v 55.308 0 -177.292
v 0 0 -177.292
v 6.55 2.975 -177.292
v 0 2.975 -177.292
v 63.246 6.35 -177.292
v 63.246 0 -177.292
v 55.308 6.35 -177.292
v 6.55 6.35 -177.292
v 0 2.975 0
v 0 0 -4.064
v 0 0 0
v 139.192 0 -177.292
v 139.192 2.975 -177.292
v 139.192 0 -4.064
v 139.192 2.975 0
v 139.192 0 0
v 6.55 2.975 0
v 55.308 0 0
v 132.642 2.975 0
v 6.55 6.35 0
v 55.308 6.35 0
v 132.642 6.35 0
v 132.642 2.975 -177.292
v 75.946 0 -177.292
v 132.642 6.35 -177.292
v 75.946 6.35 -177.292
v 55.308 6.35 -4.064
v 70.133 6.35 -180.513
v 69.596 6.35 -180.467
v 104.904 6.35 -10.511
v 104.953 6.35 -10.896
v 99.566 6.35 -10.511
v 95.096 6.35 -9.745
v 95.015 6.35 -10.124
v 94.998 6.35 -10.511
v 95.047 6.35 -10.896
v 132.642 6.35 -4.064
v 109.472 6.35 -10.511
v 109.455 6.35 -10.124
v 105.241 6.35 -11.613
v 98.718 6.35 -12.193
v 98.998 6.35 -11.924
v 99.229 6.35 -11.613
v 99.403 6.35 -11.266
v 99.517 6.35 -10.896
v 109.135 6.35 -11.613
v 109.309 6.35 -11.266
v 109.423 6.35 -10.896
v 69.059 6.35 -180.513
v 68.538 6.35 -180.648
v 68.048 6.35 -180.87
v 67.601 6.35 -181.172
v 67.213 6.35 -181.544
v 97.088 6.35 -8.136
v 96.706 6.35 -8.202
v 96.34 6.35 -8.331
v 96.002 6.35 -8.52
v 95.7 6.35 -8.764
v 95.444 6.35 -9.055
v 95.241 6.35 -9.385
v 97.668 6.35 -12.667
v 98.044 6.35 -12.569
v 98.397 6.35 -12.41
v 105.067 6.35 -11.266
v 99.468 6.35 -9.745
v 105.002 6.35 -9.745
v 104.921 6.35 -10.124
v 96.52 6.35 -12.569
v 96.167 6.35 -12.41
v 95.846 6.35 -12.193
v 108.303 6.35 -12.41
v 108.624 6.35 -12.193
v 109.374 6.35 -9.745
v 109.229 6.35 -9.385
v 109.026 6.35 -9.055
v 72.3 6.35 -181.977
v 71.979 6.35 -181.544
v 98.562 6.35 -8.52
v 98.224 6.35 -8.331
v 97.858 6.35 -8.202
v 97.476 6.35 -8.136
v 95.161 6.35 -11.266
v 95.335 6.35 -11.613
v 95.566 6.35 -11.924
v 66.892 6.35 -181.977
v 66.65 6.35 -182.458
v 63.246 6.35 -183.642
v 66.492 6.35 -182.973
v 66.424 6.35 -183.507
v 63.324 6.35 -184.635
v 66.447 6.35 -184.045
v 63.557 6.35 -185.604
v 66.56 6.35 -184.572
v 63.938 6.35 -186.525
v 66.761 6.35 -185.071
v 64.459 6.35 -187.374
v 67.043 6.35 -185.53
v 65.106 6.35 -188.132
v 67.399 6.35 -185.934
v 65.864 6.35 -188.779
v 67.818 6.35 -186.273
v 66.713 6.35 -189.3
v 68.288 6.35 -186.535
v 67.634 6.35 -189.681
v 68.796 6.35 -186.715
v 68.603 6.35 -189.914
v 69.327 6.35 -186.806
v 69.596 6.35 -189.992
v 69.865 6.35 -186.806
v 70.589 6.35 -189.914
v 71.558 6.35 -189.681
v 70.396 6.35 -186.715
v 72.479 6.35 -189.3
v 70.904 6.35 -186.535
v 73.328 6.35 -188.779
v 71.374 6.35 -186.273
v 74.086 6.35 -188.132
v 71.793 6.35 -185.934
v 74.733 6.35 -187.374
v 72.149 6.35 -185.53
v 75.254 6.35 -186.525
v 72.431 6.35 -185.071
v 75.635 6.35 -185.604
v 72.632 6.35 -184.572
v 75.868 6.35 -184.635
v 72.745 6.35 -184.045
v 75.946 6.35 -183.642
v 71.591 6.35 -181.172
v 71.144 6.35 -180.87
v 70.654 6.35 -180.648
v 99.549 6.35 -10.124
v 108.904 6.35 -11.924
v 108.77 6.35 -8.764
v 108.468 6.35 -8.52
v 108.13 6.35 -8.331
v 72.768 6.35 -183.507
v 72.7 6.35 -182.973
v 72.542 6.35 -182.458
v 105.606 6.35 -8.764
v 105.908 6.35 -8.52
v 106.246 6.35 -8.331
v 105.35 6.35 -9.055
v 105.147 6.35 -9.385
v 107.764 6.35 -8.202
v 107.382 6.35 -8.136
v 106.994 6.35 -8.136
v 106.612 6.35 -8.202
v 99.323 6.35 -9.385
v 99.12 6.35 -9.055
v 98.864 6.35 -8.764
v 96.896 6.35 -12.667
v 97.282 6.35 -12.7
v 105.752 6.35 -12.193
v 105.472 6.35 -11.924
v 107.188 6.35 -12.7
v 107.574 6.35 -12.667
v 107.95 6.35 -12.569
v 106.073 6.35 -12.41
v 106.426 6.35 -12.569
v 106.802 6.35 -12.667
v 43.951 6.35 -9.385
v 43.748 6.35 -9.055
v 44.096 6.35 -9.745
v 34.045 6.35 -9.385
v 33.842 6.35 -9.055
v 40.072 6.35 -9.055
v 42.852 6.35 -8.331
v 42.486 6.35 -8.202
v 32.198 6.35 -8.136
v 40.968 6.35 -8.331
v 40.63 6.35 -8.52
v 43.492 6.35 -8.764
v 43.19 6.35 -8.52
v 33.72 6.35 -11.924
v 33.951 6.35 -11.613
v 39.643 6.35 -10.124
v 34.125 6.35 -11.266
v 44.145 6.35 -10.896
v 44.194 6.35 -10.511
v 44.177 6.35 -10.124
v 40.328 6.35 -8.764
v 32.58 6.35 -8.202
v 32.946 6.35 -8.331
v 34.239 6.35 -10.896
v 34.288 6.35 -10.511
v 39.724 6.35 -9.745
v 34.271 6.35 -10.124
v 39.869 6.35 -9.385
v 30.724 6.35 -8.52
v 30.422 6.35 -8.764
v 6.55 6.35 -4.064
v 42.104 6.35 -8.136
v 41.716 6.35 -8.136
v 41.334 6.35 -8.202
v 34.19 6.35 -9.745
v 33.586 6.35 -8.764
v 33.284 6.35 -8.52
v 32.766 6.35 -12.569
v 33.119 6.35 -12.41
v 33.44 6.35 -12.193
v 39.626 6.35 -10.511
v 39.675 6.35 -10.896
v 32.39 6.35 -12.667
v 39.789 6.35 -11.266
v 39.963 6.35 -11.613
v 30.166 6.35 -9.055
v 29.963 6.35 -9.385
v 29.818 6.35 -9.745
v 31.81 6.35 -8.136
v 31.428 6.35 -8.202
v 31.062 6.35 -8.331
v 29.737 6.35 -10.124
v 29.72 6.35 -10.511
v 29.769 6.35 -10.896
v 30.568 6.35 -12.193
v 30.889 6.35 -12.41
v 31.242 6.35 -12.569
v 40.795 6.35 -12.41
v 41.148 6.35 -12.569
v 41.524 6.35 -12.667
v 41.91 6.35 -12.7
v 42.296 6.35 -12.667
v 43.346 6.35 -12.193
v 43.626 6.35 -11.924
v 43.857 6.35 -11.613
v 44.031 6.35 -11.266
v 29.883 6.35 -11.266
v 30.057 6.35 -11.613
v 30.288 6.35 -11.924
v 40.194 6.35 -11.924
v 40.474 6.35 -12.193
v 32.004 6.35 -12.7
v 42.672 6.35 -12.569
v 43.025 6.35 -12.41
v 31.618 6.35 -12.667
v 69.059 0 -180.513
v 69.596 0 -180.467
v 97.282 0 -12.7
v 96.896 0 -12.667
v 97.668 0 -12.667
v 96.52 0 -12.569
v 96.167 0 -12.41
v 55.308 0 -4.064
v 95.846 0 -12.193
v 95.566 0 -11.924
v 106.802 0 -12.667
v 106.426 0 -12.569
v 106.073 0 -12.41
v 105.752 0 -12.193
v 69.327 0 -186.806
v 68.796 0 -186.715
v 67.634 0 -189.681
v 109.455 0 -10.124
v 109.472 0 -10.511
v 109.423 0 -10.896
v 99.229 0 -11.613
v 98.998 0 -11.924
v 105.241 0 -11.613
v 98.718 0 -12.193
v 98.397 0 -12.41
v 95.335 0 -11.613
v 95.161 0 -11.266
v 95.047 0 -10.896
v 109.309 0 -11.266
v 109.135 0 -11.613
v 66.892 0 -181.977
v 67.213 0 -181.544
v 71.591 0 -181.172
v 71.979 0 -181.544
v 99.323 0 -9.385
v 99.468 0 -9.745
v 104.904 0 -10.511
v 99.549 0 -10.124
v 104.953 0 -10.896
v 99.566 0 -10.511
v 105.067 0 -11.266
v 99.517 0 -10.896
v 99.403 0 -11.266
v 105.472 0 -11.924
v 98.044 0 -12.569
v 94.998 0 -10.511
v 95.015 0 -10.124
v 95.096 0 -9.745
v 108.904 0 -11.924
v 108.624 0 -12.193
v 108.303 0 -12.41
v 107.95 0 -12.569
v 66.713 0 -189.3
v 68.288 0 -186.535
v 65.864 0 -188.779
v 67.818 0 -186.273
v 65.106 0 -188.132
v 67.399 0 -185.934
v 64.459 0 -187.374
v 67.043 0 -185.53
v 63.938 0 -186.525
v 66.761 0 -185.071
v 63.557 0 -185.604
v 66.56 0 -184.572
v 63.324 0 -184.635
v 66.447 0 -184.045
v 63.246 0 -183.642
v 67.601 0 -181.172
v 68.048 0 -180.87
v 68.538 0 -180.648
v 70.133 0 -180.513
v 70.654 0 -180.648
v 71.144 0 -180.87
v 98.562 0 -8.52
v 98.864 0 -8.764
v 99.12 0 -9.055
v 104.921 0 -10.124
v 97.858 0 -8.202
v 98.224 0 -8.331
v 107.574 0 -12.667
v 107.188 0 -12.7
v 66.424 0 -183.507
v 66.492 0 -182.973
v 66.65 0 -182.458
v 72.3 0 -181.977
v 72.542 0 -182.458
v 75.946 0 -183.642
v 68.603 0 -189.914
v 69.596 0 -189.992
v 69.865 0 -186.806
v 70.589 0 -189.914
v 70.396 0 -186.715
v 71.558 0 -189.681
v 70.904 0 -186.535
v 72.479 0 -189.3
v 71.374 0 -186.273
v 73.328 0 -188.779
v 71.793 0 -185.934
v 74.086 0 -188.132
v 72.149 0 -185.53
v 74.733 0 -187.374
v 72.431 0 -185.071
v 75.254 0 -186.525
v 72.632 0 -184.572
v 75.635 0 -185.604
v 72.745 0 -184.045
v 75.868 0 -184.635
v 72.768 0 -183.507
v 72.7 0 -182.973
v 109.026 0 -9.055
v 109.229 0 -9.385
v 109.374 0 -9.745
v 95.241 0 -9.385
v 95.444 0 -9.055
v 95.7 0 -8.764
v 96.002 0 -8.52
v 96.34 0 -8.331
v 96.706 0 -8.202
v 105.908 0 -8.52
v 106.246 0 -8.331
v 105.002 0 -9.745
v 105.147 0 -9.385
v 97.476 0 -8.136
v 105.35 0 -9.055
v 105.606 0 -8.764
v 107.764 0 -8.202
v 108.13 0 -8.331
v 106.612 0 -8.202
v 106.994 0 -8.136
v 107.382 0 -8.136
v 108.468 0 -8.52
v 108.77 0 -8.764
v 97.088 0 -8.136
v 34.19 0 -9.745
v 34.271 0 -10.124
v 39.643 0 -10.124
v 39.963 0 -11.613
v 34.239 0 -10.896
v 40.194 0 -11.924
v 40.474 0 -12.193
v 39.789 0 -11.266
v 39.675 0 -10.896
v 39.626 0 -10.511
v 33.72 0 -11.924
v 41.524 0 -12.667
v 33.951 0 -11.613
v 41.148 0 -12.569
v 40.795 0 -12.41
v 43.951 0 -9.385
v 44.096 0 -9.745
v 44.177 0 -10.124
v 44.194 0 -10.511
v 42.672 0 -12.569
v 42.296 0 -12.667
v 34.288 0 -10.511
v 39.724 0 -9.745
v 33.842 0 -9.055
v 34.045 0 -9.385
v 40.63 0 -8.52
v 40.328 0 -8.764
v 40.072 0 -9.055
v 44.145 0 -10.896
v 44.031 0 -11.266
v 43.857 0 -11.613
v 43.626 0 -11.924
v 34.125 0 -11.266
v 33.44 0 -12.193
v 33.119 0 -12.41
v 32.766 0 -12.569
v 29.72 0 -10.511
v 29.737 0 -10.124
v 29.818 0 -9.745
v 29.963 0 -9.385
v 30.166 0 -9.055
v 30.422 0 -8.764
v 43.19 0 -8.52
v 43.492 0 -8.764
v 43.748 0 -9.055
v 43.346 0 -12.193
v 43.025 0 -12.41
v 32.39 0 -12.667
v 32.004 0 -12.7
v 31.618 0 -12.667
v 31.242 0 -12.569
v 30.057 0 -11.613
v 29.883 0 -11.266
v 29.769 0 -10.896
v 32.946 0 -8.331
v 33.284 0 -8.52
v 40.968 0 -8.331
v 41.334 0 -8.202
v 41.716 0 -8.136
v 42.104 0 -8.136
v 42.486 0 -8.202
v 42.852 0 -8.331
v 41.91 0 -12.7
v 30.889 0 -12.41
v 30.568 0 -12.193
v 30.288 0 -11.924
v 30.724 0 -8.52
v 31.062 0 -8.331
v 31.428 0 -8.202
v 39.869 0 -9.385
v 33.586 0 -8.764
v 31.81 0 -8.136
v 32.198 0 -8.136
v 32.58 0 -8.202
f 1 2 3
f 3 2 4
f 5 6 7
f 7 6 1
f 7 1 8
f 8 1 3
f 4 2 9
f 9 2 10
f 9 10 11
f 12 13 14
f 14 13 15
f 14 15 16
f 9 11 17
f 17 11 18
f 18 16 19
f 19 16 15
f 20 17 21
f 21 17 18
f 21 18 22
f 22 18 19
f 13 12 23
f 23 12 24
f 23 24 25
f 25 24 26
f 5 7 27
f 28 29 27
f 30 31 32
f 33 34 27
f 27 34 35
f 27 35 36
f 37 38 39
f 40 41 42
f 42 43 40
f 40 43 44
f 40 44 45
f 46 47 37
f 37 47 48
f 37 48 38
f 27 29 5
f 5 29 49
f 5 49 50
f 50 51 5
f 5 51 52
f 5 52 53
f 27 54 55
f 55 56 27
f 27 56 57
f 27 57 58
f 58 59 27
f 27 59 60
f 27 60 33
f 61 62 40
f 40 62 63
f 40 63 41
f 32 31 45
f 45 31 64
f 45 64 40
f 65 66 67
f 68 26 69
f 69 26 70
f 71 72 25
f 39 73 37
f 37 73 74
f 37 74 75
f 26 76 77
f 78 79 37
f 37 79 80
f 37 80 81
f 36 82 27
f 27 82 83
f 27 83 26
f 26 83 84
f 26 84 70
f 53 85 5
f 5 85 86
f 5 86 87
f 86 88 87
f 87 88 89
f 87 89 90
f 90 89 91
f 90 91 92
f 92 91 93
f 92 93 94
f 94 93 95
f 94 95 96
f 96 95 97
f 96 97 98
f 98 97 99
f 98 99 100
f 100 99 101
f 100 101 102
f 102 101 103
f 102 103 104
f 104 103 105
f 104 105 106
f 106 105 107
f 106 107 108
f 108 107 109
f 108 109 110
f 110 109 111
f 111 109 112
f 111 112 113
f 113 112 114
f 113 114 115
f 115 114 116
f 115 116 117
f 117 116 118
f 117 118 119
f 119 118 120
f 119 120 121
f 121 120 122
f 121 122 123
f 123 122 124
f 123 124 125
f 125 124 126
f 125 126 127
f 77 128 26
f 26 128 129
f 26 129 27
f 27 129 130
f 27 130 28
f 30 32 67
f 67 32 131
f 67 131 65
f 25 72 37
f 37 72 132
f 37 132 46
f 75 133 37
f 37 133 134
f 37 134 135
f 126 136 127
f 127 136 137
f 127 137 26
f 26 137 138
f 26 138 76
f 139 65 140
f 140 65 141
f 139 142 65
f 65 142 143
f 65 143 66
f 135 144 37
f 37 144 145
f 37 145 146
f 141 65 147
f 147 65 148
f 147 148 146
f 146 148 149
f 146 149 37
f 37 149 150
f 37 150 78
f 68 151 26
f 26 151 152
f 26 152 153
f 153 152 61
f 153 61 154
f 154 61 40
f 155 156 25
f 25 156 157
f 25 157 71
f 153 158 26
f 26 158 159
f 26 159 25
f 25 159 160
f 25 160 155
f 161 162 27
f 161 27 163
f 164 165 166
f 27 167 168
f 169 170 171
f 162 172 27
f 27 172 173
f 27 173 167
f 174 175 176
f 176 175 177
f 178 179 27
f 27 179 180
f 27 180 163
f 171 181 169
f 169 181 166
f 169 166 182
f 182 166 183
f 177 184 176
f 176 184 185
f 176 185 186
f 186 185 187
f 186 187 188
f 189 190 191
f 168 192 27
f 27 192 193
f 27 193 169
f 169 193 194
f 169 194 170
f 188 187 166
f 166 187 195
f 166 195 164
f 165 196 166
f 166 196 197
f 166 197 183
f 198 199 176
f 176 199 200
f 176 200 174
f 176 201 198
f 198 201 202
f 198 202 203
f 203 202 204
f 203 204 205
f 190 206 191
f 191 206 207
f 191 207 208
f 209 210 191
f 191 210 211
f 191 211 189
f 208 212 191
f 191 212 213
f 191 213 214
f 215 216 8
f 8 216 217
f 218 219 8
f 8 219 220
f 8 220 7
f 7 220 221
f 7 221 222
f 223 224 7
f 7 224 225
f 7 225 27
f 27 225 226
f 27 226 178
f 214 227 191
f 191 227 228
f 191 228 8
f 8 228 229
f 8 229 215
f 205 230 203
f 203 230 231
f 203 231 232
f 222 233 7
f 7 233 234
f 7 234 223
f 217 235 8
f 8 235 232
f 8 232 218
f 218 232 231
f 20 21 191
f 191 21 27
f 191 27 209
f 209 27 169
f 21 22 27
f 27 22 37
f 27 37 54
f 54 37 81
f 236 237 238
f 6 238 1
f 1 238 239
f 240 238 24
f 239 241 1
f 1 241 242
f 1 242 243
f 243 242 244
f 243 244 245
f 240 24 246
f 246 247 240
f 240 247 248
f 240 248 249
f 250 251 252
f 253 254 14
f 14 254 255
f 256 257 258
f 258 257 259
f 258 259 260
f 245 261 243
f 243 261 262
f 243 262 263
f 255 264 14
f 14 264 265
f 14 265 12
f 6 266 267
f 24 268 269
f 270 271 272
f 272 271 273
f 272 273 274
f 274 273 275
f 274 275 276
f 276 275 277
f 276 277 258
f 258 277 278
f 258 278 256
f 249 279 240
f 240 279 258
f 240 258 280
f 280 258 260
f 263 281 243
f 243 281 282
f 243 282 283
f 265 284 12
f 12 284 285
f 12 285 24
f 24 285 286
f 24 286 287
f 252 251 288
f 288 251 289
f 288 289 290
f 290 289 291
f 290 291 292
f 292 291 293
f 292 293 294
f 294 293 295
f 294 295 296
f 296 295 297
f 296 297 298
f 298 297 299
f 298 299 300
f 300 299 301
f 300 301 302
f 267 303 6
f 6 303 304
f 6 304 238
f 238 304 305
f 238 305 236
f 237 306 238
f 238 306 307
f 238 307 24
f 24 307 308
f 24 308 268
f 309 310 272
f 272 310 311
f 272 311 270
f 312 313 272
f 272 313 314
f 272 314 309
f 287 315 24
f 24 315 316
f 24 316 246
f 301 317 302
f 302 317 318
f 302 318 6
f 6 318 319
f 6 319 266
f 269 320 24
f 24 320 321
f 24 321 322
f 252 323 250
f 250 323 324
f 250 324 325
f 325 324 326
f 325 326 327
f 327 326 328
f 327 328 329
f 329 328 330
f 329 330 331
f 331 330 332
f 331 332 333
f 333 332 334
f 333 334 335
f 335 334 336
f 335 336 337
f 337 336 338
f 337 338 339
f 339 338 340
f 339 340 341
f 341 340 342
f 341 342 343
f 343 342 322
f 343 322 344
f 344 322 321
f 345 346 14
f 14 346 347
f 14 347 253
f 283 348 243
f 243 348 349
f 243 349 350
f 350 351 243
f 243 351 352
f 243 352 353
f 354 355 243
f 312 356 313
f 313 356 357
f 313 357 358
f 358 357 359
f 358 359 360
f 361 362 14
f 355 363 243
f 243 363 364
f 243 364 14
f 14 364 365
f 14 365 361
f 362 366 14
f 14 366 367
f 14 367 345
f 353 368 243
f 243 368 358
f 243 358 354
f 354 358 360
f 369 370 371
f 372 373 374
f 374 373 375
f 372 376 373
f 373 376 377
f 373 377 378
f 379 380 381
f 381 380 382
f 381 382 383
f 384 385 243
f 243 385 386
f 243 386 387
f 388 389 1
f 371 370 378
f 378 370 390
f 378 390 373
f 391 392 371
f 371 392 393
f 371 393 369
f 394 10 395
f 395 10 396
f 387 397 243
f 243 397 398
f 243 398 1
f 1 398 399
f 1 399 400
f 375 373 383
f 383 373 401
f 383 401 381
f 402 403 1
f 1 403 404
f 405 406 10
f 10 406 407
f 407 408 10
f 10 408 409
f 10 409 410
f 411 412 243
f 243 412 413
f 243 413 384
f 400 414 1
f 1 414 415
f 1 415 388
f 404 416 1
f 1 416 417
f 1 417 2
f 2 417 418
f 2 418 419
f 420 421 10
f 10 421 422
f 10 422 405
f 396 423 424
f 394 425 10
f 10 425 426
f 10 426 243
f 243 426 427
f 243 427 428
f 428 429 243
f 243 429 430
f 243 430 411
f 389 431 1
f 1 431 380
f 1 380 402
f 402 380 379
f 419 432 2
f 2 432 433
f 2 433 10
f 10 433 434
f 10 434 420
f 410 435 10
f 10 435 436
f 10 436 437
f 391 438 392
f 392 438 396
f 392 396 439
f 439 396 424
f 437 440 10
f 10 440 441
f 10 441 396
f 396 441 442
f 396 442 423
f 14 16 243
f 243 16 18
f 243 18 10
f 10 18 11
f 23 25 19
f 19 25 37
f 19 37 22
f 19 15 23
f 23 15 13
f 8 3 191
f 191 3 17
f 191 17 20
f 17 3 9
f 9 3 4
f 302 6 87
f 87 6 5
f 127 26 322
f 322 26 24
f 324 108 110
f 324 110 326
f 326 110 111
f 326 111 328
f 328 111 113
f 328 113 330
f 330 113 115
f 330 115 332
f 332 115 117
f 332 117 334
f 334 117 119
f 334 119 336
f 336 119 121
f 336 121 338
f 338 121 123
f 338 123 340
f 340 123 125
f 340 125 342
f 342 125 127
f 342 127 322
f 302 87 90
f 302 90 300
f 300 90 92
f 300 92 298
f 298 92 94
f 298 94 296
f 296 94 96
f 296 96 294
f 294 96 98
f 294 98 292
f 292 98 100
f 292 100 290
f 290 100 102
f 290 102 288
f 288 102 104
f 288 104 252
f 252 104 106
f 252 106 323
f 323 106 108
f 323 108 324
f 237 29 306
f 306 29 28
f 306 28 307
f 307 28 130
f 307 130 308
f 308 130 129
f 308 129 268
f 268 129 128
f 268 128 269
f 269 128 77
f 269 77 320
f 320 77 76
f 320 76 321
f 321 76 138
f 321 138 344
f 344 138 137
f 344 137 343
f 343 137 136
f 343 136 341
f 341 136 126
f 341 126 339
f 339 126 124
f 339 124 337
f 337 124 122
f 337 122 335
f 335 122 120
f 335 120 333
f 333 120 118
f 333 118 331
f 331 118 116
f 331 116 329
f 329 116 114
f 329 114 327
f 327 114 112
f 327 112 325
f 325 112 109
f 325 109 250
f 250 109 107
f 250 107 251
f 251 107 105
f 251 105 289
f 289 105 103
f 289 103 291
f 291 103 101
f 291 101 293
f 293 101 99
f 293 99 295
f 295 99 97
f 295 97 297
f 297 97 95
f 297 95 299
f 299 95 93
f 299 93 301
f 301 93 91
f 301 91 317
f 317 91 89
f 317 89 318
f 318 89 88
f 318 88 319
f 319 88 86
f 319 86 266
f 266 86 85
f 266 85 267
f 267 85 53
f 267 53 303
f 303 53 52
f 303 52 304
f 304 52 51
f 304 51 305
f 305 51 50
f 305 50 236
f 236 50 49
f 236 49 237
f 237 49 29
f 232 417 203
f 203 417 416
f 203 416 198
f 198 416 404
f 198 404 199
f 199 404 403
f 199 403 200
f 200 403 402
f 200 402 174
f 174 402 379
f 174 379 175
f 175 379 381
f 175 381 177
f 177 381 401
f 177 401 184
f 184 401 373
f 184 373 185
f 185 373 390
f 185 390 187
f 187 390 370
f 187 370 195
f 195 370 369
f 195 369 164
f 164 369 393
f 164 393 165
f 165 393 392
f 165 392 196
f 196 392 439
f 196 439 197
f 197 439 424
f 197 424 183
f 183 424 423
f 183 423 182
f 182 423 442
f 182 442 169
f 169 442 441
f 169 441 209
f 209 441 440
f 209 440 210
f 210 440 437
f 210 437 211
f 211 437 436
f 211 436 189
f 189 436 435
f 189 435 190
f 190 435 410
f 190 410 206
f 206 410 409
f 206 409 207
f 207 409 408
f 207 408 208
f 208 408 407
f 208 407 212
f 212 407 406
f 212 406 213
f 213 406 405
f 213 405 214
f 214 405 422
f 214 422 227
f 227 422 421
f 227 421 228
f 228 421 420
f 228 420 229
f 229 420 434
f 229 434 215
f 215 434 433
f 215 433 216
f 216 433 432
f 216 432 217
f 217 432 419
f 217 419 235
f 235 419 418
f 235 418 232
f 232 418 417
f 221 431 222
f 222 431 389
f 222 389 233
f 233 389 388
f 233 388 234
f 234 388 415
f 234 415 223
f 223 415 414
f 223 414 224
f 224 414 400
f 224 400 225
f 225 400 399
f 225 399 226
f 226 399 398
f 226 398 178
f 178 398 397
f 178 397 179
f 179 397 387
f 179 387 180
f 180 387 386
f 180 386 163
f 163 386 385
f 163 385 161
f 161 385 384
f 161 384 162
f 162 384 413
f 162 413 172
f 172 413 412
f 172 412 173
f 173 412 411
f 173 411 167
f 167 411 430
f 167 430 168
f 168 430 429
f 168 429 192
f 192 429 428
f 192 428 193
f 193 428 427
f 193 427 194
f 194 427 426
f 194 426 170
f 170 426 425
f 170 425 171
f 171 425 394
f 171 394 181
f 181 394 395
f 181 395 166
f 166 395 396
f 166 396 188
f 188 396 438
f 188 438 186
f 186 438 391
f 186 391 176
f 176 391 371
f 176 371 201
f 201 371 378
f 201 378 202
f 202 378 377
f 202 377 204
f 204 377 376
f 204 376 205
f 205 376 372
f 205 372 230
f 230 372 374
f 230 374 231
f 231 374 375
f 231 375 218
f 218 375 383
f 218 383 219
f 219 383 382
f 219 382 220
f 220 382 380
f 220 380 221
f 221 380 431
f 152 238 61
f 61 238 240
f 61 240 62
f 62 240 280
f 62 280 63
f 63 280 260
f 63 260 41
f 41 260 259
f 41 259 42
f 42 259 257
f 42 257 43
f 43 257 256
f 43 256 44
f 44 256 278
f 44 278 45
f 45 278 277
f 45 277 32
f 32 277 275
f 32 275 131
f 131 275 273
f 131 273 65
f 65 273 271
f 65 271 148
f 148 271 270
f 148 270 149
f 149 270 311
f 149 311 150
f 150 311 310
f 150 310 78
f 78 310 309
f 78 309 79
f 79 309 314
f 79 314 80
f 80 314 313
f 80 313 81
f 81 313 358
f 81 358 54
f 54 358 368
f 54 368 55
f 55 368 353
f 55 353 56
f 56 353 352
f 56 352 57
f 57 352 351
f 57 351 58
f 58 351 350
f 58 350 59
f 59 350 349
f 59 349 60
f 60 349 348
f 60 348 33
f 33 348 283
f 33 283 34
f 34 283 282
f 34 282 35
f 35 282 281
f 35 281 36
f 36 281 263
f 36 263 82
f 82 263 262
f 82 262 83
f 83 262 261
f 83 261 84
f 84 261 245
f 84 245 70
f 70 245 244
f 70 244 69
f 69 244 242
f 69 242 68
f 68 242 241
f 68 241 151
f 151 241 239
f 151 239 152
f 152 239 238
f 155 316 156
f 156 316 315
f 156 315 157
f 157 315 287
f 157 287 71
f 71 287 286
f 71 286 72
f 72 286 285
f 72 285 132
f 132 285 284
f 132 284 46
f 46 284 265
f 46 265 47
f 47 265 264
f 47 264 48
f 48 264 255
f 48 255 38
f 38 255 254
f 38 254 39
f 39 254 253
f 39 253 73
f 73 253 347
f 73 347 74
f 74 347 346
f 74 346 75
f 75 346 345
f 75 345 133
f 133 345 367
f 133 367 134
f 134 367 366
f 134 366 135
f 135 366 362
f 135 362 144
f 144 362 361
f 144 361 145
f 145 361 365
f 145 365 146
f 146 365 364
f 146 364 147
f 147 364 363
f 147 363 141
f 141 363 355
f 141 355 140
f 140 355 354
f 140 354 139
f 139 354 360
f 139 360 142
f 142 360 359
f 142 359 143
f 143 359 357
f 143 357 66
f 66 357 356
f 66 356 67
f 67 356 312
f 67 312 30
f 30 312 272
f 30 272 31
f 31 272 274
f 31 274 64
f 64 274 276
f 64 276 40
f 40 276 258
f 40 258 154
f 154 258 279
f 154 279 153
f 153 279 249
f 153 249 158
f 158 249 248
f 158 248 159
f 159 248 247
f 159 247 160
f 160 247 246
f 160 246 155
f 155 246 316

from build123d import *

# Parameters (mm, degrees)
SKETCH1_W           = 139.192
SKETCH1_H           = 177.292
BOSS_EXTRUDE1_DEPTH = 6.35
SKETCH2_W           = 6.55
SKETCH2_H           = 177.292
CUT_EXTRUDE1_DEPTH  = 3.375
SKETCH3_W           = 12.7
SKETCH3_H           = 12.7
BOSS_EXTRUDE2_DEPTH = 6.35
FILLET1_R           = 6.35
SKETCH4_R           = 3.175
CUT_EXTRUDE2_DEPTH  = 236.609200644
SKETCH5_R           = 2.286
CUT_EXTRUDE3_DEPTH  = 12.7


with BuildPart() as part:
    # Sketch1 → Boss-Extrude1 (new body)
    with BuildSketch(Plane(origin=(0, 0, 0), x_dir=(1, 0, 0), z_dir=(0, 1, 0))):
        with Locations((69.596, 88.646)):
            Rectangle(SKETCH1_W, SKETCH1_H)
    extrude(amount=BOSS_EXTRUDE1_DEPTH)

    # Sketch2 → Cut-Extrude1 (cut)
    with BuildSketch(Plane(origin=(0, 6.35, 0), x_dir=(1, 0, 0), z_dir=(0, 1, 0))):
        with Locations((135.917, 88.646)):
            Rectangle(SKETCH2_W, SKETCH2_H)
        with Locations((3.275, 88.646)):
            Rectangle(SKETCH2_W, SKETCH2_H)
    extrude(amount=-CUT_EXTRUDE1_DEPTH, mode=Mode.SUBTRACT)

    # Sketch3 → Boss-Extrude2 (add)
    with BuildSketch(Plane(origin=(0, 6.35, 0), x_dir=(1, 0, 0), z_dir=(0, 1, 0))):
        with Locations((69.596, 183.642)):
            Rectangle(SKETCH3_W, SKETCH3_H)
    extrude(amount=-BOSS_EXTRUDE2_DEPTH)

    # Fillet1
    fillet1_edges = [part.edges().sort_by_distance(p)[0] for p in [
        (63.246, 3.175, -189.992),
        (75.946, 3.175, -189.992),
    ]]
    fillet(fillet1_edges, radius=FILLET1_R - 0.0001)  # a hair under: the kernel refuses the full size

    # Sketch4 → Cut-Extrude2 (cut, through all)
    with BuildSketch(Plane(origin=(0, 6.35, 0), x_dir=(1, 0, 0), z_dir=(0, 1, 0))):
        with Locations(Location((69.596, 183.642, 0), (0, 0, 270))):
            Circle(SKETCH4_R)
    extrude(amount=-CUT_EXTRUDE2_DEPTH, mode=Mode.SUBTRACT)

    # Sketch5 → Cut-Extrude3 (cut)
    with BuildSketch(Plane.XZ):
        with Locations(Location((107.188, -10.414, 0), (0, 0, 270))):
            Circle(SKETCH5_R)
        with Locations(Location((97.282, -10.414, 0), (0, 0, 270))):
            Circle(SKETCH5_R)
        with Locations(Location((41.91, -10.414, 0), (0, 0, 270))):
            Circle(SKETCH5_R)
        with Locations(Location((32.004, -10.414, 0), (0, 0, 270))):
            Circle(SKETCH5_R)
    extrude(amount=-CUT_EXTRUDE3_DEPTH, mode=Mode.SUBTRACT)


solid = part.part
